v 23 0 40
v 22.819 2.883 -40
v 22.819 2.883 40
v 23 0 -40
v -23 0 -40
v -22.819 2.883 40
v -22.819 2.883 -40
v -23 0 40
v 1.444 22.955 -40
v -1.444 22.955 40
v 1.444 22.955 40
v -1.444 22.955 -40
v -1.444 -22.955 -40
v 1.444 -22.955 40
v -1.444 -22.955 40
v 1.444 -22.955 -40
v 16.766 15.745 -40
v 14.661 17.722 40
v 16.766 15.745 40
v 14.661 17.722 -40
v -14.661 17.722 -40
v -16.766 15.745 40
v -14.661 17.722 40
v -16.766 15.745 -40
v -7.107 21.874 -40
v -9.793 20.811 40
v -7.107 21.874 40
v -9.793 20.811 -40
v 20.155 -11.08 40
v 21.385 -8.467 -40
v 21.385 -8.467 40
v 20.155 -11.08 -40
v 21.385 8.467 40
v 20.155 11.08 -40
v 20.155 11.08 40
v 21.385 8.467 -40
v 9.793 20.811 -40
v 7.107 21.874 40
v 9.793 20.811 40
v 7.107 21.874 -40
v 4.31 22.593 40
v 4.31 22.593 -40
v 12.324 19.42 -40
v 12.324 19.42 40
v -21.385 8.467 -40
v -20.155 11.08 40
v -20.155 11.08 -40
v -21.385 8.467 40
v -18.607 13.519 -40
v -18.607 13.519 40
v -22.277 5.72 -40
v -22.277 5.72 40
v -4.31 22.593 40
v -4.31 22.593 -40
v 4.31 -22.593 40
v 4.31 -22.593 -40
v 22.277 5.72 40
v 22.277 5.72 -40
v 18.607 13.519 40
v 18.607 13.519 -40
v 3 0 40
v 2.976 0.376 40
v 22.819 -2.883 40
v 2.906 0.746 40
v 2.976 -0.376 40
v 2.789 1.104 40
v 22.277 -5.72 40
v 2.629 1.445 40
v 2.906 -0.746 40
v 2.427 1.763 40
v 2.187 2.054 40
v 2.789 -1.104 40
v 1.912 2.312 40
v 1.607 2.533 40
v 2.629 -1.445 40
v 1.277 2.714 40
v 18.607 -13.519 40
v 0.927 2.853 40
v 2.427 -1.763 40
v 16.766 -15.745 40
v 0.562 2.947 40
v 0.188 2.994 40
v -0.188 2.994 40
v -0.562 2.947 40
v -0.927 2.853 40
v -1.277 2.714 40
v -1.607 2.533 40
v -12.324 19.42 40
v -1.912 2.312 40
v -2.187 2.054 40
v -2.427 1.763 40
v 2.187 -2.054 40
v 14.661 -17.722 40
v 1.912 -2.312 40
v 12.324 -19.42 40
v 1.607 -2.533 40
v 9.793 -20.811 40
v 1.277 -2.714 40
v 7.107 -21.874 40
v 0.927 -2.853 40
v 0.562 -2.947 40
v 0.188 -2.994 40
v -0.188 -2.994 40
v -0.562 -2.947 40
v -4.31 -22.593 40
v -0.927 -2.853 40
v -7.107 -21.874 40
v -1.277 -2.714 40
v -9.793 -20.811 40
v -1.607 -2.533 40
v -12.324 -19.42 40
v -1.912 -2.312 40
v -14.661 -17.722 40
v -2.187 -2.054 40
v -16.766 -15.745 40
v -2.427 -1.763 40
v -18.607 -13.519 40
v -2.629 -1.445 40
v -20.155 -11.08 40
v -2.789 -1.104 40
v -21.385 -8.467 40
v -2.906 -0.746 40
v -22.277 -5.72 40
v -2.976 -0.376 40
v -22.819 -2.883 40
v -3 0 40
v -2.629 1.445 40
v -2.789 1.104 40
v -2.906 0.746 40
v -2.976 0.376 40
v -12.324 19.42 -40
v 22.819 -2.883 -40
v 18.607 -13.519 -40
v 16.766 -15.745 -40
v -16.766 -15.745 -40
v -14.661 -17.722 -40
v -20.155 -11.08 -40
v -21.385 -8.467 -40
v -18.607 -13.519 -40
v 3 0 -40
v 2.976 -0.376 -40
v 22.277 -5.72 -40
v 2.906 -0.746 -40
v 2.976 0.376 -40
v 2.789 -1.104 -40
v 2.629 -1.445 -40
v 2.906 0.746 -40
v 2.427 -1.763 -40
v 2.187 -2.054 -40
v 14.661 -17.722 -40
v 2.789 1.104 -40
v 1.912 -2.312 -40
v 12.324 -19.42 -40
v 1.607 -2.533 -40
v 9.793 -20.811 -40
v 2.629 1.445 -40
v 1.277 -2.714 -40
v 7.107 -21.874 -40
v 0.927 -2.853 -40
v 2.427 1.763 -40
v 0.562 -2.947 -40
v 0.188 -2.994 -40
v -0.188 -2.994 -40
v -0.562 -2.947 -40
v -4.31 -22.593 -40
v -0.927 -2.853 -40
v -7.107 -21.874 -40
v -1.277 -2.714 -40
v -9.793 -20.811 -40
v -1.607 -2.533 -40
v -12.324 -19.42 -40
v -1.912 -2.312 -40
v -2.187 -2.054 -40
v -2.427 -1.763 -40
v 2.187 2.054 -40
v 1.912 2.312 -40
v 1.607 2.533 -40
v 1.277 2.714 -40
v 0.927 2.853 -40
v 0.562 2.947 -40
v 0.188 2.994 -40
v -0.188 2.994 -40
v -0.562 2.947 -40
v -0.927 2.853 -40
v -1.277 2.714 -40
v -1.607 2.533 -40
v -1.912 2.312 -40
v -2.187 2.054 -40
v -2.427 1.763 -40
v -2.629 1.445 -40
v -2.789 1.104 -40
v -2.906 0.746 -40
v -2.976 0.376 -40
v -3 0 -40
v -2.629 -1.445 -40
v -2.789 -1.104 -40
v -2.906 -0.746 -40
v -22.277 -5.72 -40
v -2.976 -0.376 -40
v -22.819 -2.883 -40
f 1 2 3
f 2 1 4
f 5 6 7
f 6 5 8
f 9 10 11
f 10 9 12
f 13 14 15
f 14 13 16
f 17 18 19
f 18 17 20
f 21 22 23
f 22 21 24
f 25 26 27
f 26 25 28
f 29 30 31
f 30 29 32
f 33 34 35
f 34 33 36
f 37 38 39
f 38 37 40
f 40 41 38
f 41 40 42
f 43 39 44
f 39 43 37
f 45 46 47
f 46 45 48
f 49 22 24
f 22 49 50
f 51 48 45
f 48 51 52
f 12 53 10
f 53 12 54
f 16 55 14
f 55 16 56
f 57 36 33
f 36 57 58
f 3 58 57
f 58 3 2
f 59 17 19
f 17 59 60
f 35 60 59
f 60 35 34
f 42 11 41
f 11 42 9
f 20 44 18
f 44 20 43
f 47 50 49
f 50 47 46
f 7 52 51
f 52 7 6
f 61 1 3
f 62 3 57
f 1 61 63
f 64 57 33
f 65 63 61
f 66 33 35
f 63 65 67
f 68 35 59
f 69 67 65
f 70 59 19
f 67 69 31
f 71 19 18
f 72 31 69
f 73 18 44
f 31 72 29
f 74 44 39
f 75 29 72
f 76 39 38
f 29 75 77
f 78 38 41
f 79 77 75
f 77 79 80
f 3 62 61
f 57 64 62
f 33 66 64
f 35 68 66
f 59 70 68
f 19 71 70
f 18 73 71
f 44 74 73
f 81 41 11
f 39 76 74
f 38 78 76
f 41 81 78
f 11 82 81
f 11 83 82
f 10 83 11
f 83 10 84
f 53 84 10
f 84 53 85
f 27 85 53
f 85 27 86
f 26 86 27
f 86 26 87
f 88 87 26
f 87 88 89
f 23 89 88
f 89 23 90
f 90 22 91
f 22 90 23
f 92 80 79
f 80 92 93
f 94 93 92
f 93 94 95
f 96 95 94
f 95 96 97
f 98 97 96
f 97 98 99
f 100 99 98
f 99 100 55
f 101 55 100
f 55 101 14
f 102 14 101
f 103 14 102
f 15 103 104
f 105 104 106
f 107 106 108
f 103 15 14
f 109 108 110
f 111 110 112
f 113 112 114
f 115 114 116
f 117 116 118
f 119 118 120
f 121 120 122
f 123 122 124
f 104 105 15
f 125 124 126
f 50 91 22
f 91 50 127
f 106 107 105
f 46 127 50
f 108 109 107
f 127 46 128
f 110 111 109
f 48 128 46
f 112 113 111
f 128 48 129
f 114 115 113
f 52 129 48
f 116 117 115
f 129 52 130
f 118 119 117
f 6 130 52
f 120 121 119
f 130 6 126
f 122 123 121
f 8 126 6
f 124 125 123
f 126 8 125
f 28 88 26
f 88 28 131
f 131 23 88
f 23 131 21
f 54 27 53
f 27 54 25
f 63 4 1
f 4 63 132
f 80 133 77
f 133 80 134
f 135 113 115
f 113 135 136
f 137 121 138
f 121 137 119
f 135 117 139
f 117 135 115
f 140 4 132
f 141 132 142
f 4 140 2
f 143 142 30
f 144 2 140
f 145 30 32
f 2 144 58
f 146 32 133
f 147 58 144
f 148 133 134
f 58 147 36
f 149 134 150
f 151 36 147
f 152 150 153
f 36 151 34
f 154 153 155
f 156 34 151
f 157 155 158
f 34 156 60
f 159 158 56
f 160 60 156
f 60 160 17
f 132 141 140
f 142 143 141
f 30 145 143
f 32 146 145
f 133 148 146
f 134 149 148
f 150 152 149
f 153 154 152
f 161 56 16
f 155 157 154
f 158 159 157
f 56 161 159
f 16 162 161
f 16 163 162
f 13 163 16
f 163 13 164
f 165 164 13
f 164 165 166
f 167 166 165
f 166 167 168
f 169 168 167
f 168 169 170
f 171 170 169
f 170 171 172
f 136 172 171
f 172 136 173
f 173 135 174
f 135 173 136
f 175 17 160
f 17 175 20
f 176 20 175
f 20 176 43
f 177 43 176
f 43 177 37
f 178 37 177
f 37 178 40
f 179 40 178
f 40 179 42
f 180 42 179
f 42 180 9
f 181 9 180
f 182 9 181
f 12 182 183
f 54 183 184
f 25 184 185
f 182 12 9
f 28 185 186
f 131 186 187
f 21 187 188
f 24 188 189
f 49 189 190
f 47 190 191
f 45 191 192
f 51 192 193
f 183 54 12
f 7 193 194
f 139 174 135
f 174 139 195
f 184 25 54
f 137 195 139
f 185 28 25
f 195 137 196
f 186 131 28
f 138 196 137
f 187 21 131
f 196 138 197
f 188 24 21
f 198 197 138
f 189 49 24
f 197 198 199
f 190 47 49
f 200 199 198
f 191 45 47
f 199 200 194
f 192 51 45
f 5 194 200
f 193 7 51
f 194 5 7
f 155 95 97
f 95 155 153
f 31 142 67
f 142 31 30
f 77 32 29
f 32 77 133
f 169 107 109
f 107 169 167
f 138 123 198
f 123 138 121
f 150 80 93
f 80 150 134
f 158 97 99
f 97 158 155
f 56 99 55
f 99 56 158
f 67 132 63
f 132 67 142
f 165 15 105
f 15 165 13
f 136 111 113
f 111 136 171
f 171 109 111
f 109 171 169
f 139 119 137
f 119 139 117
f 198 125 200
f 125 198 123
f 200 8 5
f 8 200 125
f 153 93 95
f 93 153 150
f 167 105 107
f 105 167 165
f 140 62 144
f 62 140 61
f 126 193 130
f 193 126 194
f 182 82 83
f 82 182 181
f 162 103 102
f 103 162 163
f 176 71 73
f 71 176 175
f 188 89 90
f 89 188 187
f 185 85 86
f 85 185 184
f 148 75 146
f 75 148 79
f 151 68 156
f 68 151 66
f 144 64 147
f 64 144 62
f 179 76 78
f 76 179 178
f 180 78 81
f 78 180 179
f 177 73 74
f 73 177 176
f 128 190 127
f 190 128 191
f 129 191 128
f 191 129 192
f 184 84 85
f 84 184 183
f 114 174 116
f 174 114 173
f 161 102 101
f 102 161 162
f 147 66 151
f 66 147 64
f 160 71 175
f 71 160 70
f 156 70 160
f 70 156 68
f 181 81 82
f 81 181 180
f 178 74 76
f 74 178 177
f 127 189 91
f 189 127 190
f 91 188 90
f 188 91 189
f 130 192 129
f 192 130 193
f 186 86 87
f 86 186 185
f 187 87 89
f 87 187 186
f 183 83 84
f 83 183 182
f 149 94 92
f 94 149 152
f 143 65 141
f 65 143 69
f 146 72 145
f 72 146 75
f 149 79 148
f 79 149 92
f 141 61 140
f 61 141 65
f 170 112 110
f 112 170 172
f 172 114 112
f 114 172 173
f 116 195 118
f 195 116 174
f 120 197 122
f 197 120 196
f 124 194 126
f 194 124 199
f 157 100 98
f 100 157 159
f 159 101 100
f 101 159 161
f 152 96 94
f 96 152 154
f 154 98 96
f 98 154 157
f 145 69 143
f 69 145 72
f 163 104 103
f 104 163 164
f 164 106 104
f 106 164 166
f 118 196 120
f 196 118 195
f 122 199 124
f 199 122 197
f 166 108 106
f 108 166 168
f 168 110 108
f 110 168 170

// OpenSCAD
$fn = 50;


difference() {
	union() {
		translate(v = [0, 0, -40.0000000000]) {
			cylinder(h = 80, r = 23.0000000000);
		}
	}
	union() {
		translate(v = [0, 0, -100.0000000000]) {
			cylinder(h = 200, r = 3.0000000000);
		}
	}
}
